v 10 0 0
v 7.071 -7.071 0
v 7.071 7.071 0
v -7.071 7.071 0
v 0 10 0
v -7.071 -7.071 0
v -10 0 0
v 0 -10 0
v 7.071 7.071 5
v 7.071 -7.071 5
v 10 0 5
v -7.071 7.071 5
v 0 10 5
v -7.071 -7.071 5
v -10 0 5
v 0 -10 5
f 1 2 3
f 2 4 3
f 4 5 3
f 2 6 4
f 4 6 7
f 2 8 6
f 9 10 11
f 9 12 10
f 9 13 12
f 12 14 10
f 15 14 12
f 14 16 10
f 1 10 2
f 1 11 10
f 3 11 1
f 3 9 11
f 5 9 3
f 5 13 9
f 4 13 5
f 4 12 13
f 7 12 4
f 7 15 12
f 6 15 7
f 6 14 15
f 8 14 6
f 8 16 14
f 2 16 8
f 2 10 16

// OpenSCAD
module octagon(radius, height) {
  linear_extrude(height = height) {
    polygon(points = [
      [radius, 0],
      [radius * cos(45), radius * sin(45)],
      [radius * cos(90), radius * sin(90)],
      [radius * cos(135), radius * sin(135)],
      [radius * cos(180), radius * sin(180)],
      [radius * cos(225), radius * sin(225)],
      [radius * cos(270), radius * sin(270)],
      [radius * cos(315), radius * sin(315)]
    ]);
  }
}

octagon(radius = 10, height = 5);
